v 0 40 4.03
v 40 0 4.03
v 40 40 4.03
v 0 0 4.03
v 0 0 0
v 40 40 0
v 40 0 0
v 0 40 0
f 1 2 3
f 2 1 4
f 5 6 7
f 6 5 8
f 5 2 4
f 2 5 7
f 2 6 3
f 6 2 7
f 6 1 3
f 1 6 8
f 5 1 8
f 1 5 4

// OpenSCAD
/* Warning, this is a very basic generator with a lot of approximation 
input data : [BBGA, JXC, 40x40x4.03mm, 1517, , A, C04-25515A]
generated by com.zoubworld.electronics.cad.model3d.Basic
Date : Sun Feb 15 10:50:49 CET 2026
*/

//body
color("black")
translate([0,0,0])
cube([40.0,40.0,4.03], center=false);
